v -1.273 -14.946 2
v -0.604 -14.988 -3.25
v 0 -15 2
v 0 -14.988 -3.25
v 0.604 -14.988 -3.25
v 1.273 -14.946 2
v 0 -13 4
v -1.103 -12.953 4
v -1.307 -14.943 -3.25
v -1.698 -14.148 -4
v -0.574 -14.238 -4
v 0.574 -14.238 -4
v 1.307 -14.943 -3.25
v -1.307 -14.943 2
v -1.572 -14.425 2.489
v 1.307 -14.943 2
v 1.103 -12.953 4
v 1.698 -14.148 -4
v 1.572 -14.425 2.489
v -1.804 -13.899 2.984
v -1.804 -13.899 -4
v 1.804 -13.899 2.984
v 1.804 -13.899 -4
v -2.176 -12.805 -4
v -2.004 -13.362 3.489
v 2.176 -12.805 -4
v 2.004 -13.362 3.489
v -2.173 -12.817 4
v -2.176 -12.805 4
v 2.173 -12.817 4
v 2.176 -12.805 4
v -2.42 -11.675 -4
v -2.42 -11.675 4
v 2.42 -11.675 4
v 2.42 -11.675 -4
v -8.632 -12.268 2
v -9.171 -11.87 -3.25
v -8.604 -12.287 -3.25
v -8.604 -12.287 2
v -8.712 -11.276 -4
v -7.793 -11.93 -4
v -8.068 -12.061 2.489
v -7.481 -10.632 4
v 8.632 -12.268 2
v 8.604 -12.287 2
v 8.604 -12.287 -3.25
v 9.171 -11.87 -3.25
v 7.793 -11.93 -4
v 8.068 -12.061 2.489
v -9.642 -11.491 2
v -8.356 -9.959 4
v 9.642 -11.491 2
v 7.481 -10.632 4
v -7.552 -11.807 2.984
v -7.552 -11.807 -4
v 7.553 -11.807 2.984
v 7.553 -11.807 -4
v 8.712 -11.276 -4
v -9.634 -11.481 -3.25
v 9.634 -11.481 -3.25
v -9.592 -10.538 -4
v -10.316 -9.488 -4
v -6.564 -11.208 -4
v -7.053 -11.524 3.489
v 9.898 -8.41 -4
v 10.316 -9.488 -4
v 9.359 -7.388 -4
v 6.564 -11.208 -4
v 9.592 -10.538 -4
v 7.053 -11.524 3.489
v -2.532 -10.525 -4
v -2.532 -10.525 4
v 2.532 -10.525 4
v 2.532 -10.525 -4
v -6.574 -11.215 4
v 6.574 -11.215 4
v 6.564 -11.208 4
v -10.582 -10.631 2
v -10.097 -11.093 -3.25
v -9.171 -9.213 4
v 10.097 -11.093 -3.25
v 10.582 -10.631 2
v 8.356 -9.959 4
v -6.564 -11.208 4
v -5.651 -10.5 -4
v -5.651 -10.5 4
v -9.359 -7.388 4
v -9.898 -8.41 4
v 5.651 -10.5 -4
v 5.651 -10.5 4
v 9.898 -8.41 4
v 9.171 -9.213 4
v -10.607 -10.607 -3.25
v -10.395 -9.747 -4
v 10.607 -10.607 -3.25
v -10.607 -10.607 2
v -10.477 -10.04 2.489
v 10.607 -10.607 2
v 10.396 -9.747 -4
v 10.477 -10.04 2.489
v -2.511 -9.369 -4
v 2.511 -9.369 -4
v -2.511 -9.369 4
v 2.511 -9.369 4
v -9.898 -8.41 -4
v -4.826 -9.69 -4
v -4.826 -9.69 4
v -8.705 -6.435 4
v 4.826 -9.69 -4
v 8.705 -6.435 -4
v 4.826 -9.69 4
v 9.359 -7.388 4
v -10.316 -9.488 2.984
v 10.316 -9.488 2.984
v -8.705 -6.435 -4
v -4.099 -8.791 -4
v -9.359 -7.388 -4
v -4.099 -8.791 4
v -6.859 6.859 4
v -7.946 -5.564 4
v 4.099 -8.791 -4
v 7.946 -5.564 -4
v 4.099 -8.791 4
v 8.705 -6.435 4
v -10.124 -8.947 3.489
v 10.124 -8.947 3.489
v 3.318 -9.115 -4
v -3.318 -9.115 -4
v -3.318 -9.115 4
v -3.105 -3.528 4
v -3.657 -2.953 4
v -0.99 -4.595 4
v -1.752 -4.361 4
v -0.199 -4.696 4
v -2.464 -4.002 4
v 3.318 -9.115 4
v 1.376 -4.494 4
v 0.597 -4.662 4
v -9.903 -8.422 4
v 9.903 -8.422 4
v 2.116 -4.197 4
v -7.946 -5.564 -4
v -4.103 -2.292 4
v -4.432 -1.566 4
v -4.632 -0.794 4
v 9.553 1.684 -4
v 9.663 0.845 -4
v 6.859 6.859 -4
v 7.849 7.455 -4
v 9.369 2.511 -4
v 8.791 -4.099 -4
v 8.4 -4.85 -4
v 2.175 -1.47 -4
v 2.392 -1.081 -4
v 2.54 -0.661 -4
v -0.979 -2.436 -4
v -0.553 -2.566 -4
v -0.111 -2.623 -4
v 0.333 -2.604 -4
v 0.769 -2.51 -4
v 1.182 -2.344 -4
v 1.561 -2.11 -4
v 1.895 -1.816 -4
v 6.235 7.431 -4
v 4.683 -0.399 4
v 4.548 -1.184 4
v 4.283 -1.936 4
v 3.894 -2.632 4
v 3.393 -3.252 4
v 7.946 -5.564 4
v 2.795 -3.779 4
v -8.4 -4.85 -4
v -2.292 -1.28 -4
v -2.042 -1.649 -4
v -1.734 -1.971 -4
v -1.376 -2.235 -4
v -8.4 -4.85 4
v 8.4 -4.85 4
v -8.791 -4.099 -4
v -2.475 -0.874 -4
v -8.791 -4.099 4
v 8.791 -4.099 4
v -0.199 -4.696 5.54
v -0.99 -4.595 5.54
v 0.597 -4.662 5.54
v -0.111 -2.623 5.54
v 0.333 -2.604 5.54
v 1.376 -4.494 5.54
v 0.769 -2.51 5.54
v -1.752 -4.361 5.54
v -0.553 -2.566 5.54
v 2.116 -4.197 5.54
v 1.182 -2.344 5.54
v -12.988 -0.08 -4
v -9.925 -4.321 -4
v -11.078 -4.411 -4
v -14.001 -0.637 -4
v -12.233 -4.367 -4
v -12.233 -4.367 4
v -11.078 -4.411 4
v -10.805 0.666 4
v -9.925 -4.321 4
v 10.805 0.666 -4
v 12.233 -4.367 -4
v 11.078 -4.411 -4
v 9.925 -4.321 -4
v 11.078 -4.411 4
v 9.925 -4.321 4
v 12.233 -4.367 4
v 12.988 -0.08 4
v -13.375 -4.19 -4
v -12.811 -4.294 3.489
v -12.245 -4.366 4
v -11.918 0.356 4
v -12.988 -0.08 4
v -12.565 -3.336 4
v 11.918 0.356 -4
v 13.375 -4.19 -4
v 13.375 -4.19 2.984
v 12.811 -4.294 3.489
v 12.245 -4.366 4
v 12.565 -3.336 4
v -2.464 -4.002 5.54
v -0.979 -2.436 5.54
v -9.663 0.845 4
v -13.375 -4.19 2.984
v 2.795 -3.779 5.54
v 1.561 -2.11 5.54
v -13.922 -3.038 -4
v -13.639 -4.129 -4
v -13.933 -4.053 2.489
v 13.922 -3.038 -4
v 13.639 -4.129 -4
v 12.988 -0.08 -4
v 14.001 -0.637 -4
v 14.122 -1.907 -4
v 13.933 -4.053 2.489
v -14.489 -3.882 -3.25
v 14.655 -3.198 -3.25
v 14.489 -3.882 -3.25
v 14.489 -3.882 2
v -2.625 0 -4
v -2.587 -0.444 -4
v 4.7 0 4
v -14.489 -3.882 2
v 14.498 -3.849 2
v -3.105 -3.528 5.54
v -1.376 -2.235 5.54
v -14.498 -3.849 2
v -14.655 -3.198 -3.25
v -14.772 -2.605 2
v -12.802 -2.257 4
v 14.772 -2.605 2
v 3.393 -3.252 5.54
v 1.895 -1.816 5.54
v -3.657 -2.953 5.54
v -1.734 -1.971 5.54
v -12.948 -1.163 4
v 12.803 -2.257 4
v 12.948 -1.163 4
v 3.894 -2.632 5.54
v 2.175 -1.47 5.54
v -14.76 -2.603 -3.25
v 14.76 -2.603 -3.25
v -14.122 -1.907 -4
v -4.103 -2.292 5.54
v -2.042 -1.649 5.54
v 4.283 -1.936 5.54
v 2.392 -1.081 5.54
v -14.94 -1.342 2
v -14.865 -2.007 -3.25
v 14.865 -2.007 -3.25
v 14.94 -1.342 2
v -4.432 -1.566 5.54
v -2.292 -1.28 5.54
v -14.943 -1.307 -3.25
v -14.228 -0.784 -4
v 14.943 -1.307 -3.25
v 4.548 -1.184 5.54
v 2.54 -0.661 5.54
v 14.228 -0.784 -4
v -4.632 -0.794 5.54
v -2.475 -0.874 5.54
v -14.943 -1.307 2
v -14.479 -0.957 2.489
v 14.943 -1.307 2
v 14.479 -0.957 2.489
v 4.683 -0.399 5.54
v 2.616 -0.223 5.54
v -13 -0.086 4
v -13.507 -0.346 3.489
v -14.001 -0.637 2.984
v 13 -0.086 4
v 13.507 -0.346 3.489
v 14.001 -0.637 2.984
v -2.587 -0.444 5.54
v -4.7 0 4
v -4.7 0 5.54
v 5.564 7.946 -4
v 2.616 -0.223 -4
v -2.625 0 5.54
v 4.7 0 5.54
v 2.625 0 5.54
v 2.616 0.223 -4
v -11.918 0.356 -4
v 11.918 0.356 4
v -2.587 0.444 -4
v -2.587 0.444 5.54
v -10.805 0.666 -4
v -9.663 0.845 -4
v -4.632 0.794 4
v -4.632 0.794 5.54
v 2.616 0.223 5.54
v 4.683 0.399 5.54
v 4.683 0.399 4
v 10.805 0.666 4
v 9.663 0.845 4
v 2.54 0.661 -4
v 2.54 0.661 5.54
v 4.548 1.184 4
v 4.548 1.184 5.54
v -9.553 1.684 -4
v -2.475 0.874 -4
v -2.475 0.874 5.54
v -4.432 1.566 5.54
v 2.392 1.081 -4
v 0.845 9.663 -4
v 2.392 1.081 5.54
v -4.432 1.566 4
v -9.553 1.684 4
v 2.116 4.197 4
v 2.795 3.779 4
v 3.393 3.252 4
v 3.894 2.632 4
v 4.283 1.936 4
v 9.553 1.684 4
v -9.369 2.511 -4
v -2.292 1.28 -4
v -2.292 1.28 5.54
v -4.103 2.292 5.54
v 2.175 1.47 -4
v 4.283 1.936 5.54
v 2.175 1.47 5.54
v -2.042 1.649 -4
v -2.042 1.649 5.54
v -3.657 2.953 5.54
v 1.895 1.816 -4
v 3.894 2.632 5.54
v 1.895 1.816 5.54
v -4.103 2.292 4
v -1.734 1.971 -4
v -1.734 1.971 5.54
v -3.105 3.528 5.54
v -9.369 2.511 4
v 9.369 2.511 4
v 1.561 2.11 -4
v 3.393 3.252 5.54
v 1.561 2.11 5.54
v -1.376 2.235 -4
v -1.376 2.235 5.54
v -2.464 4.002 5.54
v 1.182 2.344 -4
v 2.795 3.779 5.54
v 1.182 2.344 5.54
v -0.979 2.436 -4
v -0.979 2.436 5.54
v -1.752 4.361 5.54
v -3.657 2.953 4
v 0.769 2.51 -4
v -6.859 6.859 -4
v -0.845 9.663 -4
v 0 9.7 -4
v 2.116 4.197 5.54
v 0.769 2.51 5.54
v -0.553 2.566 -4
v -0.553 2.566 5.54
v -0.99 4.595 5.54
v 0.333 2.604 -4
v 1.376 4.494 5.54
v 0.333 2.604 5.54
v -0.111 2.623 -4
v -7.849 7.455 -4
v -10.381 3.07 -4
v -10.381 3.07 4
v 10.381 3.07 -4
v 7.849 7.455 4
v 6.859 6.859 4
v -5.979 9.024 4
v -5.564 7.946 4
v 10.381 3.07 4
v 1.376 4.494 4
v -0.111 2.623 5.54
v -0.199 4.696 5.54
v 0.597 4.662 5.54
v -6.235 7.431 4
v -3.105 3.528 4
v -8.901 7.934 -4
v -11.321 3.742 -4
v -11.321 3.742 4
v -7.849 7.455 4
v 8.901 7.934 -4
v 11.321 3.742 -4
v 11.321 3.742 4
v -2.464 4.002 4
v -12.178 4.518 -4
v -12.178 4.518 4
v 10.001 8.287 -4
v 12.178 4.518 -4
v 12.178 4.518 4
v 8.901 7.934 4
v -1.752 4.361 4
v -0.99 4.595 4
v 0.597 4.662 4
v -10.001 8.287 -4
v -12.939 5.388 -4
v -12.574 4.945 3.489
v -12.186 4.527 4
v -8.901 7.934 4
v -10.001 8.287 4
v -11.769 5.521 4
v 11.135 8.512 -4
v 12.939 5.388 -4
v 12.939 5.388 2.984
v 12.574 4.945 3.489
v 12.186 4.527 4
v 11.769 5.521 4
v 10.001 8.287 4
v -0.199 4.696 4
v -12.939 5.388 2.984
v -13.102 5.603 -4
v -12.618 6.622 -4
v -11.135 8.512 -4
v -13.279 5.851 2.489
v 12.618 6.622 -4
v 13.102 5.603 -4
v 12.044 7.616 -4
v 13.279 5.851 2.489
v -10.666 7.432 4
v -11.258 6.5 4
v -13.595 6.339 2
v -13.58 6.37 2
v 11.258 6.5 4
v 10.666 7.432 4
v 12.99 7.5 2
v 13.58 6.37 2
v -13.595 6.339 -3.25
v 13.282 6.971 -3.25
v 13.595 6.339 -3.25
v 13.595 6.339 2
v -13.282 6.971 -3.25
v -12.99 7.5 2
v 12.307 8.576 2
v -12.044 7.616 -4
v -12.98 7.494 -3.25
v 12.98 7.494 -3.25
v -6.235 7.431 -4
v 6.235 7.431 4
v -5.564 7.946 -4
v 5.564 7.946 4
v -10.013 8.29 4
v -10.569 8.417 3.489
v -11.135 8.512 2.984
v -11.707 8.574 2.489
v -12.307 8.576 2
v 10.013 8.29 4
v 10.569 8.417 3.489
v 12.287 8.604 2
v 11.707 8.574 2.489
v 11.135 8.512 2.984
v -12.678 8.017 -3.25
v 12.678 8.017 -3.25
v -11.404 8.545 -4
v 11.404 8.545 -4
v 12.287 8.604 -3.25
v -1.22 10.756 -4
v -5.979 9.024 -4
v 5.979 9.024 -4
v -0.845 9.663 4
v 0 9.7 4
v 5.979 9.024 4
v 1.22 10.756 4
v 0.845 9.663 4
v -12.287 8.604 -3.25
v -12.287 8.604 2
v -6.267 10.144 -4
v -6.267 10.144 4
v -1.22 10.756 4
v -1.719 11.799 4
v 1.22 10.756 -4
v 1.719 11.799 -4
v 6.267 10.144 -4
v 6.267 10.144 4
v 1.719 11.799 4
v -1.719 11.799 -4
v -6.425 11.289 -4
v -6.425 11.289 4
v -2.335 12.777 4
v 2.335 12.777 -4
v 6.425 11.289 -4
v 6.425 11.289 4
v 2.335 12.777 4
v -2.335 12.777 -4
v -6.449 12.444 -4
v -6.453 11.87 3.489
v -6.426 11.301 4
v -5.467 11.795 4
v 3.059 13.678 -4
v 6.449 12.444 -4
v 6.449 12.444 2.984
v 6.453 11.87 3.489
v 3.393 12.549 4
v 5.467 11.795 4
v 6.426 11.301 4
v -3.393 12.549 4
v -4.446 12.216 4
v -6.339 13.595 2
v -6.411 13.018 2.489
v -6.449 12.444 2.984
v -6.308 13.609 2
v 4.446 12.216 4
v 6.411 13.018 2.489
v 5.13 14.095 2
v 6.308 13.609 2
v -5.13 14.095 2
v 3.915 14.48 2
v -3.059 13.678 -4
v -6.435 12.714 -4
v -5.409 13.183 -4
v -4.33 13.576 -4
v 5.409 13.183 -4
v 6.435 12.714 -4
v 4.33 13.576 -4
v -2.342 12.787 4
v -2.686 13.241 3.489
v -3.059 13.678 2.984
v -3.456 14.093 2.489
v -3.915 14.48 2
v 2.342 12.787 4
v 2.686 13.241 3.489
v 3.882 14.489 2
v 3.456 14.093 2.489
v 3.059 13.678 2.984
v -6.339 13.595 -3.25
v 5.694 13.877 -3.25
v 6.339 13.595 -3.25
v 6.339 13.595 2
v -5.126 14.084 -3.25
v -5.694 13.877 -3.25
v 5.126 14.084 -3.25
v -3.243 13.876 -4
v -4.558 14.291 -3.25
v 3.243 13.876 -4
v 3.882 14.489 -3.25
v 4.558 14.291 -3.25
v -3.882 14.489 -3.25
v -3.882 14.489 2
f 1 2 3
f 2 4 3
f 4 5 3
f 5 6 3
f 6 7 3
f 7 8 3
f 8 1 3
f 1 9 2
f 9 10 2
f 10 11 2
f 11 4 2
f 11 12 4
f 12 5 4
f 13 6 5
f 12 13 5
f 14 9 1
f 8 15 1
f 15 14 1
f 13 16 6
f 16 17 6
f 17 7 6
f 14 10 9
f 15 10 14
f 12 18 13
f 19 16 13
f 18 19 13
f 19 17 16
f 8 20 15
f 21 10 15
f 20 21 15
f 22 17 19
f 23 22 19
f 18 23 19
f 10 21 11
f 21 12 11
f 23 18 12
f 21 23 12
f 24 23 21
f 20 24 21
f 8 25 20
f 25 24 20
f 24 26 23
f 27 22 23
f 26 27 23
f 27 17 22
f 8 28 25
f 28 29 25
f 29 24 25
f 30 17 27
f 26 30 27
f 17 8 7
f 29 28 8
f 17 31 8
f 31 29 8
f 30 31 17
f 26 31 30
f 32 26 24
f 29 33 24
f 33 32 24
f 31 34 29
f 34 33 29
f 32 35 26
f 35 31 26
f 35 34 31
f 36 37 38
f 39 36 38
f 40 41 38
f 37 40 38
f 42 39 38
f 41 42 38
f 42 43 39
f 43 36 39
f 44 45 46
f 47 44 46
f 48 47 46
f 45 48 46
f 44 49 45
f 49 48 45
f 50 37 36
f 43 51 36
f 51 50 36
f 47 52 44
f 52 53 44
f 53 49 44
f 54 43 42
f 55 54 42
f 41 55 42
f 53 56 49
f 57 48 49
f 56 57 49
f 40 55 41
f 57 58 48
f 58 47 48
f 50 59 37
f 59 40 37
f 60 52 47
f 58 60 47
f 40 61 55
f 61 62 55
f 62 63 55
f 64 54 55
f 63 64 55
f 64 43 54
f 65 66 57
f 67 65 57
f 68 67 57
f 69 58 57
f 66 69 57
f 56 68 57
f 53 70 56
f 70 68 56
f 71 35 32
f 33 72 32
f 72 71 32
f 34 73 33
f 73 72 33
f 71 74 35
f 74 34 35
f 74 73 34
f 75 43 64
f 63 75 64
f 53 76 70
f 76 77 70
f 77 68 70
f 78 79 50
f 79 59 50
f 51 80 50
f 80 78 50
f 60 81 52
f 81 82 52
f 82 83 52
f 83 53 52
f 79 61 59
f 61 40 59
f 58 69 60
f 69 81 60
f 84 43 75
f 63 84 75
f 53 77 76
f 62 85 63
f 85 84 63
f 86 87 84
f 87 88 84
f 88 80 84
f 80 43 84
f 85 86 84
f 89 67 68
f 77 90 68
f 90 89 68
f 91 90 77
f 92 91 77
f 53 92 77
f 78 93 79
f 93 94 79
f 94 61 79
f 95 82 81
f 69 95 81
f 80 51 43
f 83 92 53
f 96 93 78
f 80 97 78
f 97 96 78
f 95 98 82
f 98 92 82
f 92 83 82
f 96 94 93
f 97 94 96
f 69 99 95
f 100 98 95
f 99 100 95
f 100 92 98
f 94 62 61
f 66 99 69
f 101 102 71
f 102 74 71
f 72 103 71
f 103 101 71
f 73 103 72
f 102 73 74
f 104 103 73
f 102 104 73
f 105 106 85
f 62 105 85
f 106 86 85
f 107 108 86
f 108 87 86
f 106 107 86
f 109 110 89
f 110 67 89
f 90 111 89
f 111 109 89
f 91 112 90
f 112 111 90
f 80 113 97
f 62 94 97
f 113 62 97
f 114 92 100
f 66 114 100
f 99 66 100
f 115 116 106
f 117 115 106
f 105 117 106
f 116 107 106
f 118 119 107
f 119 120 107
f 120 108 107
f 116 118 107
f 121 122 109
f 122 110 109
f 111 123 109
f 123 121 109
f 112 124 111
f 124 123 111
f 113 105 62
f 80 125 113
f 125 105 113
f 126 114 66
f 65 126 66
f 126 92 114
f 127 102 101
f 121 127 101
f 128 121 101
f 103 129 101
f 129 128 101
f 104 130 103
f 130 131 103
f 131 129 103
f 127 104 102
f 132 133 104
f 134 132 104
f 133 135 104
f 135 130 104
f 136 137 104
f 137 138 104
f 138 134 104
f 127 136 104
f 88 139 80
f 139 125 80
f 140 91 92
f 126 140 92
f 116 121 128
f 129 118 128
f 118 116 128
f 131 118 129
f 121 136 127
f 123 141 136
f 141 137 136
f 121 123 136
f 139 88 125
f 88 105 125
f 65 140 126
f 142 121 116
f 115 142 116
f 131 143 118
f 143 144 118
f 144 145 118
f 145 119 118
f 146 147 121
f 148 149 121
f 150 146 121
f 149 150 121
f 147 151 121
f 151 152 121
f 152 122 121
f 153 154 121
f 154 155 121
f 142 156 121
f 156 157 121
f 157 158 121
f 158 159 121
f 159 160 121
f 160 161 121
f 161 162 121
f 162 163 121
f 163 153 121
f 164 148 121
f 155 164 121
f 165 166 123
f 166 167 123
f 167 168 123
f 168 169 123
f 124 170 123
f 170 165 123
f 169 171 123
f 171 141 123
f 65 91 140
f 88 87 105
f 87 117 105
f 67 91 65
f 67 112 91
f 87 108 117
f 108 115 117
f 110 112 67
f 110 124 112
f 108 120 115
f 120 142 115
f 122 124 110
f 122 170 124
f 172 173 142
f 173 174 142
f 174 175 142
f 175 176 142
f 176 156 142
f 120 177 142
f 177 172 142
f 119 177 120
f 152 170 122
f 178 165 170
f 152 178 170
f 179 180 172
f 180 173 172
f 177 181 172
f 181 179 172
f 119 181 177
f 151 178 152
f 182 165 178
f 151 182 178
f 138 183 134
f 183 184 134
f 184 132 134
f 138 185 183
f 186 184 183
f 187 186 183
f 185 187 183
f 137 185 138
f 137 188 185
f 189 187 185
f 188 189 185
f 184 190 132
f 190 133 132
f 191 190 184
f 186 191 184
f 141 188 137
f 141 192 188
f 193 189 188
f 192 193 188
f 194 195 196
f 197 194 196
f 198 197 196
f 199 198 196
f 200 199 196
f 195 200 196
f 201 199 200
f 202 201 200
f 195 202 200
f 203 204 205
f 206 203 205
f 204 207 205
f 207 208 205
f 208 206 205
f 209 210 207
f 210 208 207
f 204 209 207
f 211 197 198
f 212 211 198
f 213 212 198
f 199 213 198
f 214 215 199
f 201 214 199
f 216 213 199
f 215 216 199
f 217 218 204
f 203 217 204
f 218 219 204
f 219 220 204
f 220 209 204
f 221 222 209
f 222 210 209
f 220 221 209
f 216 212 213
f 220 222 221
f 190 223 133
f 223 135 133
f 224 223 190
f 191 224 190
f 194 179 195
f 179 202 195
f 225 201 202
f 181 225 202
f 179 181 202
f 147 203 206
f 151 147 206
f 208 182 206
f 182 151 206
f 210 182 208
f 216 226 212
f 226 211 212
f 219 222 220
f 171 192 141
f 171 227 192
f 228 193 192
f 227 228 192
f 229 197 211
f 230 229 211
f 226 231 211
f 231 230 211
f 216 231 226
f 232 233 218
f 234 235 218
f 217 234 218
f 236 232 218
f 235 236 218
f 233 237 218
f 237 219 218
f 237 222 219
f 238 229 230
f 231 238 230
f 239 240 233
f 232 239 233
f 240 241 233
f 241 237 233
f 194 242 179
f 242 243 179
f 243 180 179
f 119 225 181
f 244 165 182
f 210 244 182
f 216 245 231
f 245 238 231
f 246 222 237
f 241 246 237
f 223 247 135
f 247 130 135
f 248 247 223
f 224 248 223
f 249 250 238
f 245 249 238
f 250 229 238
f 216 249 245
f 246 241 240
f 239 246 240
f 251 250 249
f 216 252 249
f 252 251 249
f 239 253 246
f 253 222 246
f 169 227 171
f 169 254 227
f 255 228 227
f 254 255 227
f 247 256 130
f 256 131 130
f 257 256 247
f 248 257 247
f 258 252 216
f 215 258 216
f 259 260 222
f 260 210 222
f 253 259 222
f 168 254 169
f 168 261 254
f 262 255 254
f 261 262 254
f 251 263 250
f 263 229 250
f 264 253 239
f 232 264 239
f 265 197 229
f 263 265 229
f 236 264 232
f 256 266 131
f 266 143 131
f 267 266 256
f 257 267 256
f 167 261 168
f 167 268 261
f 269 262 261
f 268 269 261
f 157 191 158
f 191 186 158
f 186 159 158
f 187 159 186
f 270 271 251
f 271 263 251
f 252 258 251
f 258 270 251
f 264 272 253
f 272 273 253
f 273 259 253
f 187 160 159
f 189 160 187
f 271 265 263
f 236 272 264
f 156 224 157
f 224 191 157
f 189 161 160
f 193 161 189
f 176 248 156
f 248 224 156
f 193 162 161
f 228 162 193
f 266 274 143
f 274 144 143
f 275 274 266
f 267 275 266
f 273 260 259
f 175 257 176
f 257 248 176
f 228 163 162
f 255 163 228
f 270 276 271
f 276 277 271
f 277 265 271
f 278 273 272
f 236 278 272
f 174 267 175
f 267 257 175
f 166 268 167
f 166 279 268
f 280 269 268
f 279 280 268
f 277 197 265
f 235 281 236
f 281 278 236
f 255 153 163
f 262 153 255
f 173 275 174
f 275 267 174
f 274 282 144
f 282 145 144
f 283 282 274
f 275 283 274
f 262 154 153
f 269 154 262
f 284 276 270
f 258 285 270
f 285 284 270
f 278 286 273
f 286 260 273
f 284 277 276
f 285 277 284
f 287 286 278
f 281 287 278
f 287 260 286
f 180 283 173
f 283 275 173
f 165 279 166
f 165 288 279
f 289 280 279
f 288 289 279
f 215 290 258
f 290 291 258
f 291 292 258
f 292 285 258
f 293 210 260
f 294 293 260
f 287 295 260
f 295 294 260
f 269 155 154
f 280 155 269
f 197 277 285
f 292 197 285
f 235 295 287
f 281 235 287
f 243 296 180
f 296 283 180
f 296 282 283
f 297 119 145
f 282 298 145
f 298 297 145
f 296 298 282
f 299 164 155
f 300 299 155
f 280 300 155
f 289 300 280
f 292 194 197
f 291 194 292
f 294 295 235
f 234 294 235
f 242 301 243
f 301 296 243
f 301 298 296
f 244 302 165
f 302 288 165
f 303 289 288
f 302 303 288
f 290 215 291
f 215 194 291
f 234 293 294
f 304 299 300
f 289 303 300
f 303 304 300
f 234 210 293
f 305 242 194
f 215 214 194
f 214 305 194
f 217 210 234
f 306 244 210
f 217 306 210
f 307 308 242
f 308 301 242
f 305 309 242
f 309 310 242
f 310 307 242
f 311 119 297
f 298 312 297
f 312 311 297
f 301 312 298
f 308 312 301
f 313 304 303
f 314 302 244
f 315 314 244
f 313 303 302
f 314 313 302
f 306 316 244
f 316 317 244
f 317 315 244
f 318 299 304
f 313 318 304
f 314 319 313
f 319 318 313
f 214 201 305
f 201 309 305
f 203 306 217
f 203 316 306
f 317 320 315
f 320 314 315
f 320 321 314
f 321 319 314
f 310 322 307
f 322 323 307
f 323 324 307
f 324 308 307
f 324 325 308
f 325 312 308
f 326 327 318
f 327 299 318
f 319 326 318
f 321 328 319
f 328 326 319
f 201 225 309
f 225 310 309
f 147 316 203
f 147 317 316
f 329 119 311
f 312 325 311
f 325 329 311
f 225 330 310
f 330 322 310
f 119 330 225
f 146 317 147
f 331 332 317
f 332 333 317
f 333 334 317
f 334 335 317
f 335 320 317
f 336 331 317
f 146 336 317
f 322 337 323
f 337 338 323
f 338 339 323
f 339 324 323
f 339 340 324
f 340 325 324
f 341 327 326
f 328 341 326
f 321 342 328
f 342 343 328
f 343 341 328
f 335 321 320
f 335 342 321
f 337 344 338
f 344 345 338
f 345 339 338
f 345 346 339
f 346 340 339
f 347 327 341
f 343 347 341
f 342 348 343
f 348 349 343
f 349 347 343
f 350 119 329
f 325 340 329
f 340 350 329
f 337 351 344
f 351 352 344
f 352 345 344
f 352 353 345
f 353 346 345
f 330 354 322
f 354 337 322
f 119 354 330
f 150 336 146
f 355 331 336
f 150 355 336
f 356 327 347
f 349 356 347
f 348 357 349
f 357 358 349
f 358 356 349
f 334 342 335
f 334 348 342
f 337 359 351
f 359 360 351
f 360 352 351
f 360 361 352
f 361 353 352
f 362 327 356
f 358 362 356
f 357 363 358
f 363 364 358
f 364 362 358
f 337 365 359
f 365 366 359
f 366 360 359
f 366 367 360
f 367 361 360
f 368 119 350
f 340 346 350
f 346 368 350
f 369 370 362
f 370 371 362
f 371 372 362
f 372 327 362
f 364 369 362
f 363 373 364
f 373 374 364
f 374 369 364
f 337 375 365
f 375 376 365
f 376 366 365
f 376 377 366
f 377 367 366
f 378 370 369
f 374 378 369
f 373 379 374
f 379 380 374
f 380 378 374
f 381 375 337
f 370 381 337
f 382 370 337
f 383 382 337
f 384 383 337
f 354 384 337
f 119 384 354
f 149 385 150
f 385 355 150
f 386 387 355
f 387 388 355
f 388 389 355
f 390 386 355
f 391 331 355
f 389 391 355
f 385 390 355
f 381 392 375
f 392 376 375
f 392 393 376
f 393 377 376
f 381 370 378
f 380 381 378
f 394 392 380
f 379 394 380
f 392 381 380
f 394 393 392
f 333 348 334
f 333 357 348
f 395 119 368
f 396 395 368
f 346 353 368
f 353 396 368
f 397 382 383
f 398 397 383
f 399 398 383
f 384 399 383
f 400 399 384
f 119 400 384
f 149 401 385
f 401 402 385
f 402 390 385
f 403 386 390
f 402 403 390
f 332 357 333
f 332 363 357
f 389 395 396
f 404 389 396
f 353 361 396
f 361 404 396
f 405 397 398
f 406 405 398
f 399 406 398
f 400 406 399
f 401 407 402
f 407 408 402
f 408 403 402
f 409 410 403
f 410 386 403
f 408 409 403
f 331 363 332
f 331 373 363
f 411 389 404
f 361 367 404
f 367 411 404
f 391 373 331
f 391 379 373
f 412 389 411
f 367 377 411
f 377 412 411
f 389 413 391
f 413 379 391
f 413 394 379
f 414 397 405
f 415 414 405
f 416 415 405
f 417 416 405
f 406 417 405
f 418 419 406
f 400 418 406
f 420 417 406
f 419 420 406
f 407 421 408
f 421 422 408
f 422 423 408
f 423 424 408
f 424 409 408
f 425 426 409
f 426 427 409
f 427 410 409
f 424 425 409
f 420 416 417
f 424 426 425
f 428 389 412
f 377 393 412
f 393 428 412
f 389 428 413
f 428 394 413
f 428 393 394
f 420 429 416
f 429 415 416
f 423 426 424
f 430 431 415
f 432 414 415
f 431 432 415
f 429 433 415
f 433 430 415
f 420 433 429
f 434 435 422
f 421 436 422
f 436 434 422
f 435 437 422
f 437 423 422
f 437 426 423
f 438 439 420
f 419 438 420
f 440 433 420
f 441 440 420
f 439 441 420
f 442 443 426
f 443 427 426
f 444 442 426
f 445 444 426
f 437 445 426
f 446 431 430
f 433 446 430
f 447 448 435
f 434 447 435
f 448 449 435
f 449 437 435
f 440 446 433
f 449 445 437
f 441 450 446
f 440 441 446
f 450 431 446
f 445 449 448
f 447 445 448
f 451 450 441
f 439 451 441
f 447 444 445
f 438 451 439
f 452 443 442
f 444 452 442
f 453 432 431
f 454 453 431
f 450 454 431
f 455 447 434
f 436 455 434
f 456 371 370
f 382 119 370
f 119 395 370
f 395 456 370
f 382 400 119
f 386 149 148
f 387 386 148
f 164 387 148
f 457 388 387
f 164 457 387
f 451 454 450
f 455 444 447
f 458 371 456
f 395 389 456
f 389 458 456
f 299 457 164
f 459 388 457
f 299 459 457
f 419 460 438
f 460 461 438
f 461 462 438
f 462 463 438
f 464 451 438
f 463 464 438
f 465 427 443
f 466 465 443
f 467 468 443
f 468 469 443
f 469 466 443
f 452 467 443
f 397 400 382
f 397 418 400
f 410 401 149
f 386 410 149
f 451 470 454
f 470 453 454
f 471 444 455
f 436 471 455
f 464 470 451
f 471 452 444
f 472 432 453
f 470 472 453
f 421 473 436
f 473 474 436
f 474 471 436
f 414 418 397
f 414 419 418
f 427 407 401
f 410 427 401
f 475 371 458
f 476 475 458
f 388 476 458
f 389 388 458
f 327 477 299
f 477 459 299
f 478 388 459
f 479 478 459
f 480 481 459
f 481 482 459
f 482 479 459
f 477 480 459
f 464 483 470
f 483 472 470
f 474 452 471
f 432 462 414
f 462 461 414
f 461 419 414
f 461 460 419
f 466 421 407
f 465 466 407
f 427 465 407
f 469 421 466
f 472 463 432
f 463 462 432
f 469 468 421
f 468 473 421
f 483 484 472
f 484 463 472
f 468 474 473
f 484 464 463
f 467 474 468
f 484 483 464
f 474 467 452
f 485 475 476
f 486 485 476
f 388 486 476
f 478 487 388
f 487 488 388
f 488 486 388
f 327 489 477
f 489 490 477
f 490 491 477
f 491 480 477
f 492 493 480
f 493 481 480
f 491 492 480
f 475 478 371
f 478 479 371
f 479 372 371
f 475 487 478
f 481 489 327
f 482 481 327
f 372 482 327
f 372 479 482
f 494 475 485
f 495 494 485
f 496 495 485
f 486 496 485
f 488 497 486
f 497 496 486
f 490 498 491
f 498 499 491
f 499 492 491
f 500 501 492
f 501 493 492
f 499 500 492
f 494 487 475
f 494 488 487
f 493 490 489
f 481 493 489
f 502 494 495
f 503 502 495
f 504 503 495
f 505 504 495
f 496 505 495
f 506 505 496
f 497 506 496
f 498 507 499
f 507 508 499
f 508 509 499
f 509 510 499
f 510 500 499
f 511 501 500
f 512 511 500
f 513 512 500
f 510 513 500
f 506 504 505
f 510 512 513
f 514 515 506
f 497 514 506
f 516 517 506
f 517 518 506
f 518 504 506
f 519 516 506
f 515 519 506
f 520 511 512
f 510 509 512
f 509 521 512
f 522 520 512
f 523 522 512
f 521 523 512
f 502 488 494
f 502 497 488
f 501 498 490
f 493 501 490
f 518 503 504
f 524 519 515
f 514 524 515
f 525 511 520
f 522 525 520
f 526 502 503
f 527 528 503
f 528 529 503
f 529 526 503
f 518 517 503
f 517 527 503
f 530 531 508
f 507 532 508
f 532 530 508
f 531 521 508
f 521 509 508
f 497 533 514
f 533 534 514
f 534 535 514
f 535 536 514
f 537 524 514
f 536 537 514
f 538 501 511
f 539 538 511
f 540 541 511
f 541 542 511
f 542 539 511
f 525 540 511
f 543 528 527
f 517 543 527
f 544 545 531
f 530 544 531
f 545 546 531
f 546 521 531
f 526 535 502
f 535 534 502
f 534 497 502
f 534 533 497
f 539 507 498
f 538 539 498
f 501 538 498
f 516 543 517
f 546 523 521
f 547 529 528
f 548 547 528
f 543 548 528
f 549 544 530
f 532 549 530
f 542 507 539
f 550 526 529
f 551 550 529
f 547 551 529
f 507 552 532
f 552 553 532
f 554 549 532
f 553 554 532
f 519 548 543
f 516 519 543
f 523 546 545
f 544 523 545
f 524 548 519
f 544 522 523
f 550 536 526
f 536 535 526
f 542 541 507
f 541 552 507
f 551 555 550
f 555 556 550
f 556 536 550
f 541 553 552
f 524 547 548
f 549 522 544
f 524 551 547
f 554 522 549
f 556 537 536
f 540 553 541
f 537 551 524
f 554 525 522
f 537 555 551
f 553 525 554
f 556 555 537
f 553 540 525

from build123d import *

# Parameters (mm, degrees)
SKETCH1_R               = 15
GEAR_BLANK_DEPTH        = 4
FRONT_GEAR_CHAMFER_SIZE = 2
REAR_GEAR_CHAMFER_SIZE  = 0.75
TOOTH_CUT_DEPTH         = 4
TOOTH_COPIES_COUNT      = 9
SKETCH3_R               = 4.7
BOSS_EXTRUDE1_DEPTH     = 1.54
SKETCH4_R               = 2.625
CUT_EXTRUDE1_DEPTH      = 10


with BuildPart() as part:
    # Sketch1 → Gear Blank (new body, symmetric)
    with BuildSketch(Plane.XY):
        Circle(SKETCH1_R)
    extrude(amount=GEAR_BLANK_DEPTH, both=True)

    # Front Gear Chamfer
    front_gear_chamfer_edges = [part.edges().sort_by_distance(p)[0] for p in [
        (-15, 0, 4),
    ]]
    chamfer(front_gear_chamfer_edges, length=FRONT_GEAR_CHAMFER_SIZE)

    # Rear Gear Chamfer
    rear_gear_chamfer_edges = [part.edges().sort_by_distance(p)[0] for p in [
        (-15, 0, -4),
    ]]
    chamfer(rear_gear_chamfer_edges, length=REAR_GEAR_CHAMFER_SIZE)

    # Sketch2 → Tooth Cut (cut, symmetric)
    with BuildSketch(Plane.XY):
        with BuildLine():
            ThreePointArc((3.882278974, 14.48888919), (-6.939e-06, 15), (-3.882292379, 14.488885598))
            ThreePointArc((-3.882292379, 14.488885598), (-2.012616773, 12.297020546), (-0.845415175, 9.66308818))
            ThreePointArc((-0.845415175, 9.66308818), (-4.487e-06, 9.7), (0.845406235, 9.663088963))
            ThreePointArc((0.845406235, 9.663088963), (2.012605396, 12.297022408), (3.882278974, 14.48888919))
        make_face()
    tooth_cut = extrude(amount=TOOTH_CUT_DEPTH, both=True, mode=Mode.SUBTRACT)

    # Tooth Copies: Tooth Cut ×9 about axis
    tooth_copies_axis = Axis((0, 0, 0), (0, 0, 1))
    for i in range(1, TOOTH_COPIES_COUNT):
        add(tooth_cut.rotate(tooth_copies_axis, i * 360 / TOOTH_COPIES_COUNT), mode=Mode.SUBTRACT)

    # Sketch3 → Boss-Extrude1 (add)
    with BuildSketch(Plane.XY.offset(4)):
        Circle(SKETCH3_R)
    extrude(amount=BOSS_EXTRUDE1_DEPTH)

    # Sketch4 → Cut-Extrude1 (cut)
    with BuildSketch(Plane(origin=(0, 0, -4), x_dir=(-1, 0, 0), z_dir=(0, 0, -1))):
        Circle(SKETCH4_R)
    extrude(amount=-CUT_EXTRUDE1_DEPTH, mode=Mode.SUBTRACT)


solid = part.part
